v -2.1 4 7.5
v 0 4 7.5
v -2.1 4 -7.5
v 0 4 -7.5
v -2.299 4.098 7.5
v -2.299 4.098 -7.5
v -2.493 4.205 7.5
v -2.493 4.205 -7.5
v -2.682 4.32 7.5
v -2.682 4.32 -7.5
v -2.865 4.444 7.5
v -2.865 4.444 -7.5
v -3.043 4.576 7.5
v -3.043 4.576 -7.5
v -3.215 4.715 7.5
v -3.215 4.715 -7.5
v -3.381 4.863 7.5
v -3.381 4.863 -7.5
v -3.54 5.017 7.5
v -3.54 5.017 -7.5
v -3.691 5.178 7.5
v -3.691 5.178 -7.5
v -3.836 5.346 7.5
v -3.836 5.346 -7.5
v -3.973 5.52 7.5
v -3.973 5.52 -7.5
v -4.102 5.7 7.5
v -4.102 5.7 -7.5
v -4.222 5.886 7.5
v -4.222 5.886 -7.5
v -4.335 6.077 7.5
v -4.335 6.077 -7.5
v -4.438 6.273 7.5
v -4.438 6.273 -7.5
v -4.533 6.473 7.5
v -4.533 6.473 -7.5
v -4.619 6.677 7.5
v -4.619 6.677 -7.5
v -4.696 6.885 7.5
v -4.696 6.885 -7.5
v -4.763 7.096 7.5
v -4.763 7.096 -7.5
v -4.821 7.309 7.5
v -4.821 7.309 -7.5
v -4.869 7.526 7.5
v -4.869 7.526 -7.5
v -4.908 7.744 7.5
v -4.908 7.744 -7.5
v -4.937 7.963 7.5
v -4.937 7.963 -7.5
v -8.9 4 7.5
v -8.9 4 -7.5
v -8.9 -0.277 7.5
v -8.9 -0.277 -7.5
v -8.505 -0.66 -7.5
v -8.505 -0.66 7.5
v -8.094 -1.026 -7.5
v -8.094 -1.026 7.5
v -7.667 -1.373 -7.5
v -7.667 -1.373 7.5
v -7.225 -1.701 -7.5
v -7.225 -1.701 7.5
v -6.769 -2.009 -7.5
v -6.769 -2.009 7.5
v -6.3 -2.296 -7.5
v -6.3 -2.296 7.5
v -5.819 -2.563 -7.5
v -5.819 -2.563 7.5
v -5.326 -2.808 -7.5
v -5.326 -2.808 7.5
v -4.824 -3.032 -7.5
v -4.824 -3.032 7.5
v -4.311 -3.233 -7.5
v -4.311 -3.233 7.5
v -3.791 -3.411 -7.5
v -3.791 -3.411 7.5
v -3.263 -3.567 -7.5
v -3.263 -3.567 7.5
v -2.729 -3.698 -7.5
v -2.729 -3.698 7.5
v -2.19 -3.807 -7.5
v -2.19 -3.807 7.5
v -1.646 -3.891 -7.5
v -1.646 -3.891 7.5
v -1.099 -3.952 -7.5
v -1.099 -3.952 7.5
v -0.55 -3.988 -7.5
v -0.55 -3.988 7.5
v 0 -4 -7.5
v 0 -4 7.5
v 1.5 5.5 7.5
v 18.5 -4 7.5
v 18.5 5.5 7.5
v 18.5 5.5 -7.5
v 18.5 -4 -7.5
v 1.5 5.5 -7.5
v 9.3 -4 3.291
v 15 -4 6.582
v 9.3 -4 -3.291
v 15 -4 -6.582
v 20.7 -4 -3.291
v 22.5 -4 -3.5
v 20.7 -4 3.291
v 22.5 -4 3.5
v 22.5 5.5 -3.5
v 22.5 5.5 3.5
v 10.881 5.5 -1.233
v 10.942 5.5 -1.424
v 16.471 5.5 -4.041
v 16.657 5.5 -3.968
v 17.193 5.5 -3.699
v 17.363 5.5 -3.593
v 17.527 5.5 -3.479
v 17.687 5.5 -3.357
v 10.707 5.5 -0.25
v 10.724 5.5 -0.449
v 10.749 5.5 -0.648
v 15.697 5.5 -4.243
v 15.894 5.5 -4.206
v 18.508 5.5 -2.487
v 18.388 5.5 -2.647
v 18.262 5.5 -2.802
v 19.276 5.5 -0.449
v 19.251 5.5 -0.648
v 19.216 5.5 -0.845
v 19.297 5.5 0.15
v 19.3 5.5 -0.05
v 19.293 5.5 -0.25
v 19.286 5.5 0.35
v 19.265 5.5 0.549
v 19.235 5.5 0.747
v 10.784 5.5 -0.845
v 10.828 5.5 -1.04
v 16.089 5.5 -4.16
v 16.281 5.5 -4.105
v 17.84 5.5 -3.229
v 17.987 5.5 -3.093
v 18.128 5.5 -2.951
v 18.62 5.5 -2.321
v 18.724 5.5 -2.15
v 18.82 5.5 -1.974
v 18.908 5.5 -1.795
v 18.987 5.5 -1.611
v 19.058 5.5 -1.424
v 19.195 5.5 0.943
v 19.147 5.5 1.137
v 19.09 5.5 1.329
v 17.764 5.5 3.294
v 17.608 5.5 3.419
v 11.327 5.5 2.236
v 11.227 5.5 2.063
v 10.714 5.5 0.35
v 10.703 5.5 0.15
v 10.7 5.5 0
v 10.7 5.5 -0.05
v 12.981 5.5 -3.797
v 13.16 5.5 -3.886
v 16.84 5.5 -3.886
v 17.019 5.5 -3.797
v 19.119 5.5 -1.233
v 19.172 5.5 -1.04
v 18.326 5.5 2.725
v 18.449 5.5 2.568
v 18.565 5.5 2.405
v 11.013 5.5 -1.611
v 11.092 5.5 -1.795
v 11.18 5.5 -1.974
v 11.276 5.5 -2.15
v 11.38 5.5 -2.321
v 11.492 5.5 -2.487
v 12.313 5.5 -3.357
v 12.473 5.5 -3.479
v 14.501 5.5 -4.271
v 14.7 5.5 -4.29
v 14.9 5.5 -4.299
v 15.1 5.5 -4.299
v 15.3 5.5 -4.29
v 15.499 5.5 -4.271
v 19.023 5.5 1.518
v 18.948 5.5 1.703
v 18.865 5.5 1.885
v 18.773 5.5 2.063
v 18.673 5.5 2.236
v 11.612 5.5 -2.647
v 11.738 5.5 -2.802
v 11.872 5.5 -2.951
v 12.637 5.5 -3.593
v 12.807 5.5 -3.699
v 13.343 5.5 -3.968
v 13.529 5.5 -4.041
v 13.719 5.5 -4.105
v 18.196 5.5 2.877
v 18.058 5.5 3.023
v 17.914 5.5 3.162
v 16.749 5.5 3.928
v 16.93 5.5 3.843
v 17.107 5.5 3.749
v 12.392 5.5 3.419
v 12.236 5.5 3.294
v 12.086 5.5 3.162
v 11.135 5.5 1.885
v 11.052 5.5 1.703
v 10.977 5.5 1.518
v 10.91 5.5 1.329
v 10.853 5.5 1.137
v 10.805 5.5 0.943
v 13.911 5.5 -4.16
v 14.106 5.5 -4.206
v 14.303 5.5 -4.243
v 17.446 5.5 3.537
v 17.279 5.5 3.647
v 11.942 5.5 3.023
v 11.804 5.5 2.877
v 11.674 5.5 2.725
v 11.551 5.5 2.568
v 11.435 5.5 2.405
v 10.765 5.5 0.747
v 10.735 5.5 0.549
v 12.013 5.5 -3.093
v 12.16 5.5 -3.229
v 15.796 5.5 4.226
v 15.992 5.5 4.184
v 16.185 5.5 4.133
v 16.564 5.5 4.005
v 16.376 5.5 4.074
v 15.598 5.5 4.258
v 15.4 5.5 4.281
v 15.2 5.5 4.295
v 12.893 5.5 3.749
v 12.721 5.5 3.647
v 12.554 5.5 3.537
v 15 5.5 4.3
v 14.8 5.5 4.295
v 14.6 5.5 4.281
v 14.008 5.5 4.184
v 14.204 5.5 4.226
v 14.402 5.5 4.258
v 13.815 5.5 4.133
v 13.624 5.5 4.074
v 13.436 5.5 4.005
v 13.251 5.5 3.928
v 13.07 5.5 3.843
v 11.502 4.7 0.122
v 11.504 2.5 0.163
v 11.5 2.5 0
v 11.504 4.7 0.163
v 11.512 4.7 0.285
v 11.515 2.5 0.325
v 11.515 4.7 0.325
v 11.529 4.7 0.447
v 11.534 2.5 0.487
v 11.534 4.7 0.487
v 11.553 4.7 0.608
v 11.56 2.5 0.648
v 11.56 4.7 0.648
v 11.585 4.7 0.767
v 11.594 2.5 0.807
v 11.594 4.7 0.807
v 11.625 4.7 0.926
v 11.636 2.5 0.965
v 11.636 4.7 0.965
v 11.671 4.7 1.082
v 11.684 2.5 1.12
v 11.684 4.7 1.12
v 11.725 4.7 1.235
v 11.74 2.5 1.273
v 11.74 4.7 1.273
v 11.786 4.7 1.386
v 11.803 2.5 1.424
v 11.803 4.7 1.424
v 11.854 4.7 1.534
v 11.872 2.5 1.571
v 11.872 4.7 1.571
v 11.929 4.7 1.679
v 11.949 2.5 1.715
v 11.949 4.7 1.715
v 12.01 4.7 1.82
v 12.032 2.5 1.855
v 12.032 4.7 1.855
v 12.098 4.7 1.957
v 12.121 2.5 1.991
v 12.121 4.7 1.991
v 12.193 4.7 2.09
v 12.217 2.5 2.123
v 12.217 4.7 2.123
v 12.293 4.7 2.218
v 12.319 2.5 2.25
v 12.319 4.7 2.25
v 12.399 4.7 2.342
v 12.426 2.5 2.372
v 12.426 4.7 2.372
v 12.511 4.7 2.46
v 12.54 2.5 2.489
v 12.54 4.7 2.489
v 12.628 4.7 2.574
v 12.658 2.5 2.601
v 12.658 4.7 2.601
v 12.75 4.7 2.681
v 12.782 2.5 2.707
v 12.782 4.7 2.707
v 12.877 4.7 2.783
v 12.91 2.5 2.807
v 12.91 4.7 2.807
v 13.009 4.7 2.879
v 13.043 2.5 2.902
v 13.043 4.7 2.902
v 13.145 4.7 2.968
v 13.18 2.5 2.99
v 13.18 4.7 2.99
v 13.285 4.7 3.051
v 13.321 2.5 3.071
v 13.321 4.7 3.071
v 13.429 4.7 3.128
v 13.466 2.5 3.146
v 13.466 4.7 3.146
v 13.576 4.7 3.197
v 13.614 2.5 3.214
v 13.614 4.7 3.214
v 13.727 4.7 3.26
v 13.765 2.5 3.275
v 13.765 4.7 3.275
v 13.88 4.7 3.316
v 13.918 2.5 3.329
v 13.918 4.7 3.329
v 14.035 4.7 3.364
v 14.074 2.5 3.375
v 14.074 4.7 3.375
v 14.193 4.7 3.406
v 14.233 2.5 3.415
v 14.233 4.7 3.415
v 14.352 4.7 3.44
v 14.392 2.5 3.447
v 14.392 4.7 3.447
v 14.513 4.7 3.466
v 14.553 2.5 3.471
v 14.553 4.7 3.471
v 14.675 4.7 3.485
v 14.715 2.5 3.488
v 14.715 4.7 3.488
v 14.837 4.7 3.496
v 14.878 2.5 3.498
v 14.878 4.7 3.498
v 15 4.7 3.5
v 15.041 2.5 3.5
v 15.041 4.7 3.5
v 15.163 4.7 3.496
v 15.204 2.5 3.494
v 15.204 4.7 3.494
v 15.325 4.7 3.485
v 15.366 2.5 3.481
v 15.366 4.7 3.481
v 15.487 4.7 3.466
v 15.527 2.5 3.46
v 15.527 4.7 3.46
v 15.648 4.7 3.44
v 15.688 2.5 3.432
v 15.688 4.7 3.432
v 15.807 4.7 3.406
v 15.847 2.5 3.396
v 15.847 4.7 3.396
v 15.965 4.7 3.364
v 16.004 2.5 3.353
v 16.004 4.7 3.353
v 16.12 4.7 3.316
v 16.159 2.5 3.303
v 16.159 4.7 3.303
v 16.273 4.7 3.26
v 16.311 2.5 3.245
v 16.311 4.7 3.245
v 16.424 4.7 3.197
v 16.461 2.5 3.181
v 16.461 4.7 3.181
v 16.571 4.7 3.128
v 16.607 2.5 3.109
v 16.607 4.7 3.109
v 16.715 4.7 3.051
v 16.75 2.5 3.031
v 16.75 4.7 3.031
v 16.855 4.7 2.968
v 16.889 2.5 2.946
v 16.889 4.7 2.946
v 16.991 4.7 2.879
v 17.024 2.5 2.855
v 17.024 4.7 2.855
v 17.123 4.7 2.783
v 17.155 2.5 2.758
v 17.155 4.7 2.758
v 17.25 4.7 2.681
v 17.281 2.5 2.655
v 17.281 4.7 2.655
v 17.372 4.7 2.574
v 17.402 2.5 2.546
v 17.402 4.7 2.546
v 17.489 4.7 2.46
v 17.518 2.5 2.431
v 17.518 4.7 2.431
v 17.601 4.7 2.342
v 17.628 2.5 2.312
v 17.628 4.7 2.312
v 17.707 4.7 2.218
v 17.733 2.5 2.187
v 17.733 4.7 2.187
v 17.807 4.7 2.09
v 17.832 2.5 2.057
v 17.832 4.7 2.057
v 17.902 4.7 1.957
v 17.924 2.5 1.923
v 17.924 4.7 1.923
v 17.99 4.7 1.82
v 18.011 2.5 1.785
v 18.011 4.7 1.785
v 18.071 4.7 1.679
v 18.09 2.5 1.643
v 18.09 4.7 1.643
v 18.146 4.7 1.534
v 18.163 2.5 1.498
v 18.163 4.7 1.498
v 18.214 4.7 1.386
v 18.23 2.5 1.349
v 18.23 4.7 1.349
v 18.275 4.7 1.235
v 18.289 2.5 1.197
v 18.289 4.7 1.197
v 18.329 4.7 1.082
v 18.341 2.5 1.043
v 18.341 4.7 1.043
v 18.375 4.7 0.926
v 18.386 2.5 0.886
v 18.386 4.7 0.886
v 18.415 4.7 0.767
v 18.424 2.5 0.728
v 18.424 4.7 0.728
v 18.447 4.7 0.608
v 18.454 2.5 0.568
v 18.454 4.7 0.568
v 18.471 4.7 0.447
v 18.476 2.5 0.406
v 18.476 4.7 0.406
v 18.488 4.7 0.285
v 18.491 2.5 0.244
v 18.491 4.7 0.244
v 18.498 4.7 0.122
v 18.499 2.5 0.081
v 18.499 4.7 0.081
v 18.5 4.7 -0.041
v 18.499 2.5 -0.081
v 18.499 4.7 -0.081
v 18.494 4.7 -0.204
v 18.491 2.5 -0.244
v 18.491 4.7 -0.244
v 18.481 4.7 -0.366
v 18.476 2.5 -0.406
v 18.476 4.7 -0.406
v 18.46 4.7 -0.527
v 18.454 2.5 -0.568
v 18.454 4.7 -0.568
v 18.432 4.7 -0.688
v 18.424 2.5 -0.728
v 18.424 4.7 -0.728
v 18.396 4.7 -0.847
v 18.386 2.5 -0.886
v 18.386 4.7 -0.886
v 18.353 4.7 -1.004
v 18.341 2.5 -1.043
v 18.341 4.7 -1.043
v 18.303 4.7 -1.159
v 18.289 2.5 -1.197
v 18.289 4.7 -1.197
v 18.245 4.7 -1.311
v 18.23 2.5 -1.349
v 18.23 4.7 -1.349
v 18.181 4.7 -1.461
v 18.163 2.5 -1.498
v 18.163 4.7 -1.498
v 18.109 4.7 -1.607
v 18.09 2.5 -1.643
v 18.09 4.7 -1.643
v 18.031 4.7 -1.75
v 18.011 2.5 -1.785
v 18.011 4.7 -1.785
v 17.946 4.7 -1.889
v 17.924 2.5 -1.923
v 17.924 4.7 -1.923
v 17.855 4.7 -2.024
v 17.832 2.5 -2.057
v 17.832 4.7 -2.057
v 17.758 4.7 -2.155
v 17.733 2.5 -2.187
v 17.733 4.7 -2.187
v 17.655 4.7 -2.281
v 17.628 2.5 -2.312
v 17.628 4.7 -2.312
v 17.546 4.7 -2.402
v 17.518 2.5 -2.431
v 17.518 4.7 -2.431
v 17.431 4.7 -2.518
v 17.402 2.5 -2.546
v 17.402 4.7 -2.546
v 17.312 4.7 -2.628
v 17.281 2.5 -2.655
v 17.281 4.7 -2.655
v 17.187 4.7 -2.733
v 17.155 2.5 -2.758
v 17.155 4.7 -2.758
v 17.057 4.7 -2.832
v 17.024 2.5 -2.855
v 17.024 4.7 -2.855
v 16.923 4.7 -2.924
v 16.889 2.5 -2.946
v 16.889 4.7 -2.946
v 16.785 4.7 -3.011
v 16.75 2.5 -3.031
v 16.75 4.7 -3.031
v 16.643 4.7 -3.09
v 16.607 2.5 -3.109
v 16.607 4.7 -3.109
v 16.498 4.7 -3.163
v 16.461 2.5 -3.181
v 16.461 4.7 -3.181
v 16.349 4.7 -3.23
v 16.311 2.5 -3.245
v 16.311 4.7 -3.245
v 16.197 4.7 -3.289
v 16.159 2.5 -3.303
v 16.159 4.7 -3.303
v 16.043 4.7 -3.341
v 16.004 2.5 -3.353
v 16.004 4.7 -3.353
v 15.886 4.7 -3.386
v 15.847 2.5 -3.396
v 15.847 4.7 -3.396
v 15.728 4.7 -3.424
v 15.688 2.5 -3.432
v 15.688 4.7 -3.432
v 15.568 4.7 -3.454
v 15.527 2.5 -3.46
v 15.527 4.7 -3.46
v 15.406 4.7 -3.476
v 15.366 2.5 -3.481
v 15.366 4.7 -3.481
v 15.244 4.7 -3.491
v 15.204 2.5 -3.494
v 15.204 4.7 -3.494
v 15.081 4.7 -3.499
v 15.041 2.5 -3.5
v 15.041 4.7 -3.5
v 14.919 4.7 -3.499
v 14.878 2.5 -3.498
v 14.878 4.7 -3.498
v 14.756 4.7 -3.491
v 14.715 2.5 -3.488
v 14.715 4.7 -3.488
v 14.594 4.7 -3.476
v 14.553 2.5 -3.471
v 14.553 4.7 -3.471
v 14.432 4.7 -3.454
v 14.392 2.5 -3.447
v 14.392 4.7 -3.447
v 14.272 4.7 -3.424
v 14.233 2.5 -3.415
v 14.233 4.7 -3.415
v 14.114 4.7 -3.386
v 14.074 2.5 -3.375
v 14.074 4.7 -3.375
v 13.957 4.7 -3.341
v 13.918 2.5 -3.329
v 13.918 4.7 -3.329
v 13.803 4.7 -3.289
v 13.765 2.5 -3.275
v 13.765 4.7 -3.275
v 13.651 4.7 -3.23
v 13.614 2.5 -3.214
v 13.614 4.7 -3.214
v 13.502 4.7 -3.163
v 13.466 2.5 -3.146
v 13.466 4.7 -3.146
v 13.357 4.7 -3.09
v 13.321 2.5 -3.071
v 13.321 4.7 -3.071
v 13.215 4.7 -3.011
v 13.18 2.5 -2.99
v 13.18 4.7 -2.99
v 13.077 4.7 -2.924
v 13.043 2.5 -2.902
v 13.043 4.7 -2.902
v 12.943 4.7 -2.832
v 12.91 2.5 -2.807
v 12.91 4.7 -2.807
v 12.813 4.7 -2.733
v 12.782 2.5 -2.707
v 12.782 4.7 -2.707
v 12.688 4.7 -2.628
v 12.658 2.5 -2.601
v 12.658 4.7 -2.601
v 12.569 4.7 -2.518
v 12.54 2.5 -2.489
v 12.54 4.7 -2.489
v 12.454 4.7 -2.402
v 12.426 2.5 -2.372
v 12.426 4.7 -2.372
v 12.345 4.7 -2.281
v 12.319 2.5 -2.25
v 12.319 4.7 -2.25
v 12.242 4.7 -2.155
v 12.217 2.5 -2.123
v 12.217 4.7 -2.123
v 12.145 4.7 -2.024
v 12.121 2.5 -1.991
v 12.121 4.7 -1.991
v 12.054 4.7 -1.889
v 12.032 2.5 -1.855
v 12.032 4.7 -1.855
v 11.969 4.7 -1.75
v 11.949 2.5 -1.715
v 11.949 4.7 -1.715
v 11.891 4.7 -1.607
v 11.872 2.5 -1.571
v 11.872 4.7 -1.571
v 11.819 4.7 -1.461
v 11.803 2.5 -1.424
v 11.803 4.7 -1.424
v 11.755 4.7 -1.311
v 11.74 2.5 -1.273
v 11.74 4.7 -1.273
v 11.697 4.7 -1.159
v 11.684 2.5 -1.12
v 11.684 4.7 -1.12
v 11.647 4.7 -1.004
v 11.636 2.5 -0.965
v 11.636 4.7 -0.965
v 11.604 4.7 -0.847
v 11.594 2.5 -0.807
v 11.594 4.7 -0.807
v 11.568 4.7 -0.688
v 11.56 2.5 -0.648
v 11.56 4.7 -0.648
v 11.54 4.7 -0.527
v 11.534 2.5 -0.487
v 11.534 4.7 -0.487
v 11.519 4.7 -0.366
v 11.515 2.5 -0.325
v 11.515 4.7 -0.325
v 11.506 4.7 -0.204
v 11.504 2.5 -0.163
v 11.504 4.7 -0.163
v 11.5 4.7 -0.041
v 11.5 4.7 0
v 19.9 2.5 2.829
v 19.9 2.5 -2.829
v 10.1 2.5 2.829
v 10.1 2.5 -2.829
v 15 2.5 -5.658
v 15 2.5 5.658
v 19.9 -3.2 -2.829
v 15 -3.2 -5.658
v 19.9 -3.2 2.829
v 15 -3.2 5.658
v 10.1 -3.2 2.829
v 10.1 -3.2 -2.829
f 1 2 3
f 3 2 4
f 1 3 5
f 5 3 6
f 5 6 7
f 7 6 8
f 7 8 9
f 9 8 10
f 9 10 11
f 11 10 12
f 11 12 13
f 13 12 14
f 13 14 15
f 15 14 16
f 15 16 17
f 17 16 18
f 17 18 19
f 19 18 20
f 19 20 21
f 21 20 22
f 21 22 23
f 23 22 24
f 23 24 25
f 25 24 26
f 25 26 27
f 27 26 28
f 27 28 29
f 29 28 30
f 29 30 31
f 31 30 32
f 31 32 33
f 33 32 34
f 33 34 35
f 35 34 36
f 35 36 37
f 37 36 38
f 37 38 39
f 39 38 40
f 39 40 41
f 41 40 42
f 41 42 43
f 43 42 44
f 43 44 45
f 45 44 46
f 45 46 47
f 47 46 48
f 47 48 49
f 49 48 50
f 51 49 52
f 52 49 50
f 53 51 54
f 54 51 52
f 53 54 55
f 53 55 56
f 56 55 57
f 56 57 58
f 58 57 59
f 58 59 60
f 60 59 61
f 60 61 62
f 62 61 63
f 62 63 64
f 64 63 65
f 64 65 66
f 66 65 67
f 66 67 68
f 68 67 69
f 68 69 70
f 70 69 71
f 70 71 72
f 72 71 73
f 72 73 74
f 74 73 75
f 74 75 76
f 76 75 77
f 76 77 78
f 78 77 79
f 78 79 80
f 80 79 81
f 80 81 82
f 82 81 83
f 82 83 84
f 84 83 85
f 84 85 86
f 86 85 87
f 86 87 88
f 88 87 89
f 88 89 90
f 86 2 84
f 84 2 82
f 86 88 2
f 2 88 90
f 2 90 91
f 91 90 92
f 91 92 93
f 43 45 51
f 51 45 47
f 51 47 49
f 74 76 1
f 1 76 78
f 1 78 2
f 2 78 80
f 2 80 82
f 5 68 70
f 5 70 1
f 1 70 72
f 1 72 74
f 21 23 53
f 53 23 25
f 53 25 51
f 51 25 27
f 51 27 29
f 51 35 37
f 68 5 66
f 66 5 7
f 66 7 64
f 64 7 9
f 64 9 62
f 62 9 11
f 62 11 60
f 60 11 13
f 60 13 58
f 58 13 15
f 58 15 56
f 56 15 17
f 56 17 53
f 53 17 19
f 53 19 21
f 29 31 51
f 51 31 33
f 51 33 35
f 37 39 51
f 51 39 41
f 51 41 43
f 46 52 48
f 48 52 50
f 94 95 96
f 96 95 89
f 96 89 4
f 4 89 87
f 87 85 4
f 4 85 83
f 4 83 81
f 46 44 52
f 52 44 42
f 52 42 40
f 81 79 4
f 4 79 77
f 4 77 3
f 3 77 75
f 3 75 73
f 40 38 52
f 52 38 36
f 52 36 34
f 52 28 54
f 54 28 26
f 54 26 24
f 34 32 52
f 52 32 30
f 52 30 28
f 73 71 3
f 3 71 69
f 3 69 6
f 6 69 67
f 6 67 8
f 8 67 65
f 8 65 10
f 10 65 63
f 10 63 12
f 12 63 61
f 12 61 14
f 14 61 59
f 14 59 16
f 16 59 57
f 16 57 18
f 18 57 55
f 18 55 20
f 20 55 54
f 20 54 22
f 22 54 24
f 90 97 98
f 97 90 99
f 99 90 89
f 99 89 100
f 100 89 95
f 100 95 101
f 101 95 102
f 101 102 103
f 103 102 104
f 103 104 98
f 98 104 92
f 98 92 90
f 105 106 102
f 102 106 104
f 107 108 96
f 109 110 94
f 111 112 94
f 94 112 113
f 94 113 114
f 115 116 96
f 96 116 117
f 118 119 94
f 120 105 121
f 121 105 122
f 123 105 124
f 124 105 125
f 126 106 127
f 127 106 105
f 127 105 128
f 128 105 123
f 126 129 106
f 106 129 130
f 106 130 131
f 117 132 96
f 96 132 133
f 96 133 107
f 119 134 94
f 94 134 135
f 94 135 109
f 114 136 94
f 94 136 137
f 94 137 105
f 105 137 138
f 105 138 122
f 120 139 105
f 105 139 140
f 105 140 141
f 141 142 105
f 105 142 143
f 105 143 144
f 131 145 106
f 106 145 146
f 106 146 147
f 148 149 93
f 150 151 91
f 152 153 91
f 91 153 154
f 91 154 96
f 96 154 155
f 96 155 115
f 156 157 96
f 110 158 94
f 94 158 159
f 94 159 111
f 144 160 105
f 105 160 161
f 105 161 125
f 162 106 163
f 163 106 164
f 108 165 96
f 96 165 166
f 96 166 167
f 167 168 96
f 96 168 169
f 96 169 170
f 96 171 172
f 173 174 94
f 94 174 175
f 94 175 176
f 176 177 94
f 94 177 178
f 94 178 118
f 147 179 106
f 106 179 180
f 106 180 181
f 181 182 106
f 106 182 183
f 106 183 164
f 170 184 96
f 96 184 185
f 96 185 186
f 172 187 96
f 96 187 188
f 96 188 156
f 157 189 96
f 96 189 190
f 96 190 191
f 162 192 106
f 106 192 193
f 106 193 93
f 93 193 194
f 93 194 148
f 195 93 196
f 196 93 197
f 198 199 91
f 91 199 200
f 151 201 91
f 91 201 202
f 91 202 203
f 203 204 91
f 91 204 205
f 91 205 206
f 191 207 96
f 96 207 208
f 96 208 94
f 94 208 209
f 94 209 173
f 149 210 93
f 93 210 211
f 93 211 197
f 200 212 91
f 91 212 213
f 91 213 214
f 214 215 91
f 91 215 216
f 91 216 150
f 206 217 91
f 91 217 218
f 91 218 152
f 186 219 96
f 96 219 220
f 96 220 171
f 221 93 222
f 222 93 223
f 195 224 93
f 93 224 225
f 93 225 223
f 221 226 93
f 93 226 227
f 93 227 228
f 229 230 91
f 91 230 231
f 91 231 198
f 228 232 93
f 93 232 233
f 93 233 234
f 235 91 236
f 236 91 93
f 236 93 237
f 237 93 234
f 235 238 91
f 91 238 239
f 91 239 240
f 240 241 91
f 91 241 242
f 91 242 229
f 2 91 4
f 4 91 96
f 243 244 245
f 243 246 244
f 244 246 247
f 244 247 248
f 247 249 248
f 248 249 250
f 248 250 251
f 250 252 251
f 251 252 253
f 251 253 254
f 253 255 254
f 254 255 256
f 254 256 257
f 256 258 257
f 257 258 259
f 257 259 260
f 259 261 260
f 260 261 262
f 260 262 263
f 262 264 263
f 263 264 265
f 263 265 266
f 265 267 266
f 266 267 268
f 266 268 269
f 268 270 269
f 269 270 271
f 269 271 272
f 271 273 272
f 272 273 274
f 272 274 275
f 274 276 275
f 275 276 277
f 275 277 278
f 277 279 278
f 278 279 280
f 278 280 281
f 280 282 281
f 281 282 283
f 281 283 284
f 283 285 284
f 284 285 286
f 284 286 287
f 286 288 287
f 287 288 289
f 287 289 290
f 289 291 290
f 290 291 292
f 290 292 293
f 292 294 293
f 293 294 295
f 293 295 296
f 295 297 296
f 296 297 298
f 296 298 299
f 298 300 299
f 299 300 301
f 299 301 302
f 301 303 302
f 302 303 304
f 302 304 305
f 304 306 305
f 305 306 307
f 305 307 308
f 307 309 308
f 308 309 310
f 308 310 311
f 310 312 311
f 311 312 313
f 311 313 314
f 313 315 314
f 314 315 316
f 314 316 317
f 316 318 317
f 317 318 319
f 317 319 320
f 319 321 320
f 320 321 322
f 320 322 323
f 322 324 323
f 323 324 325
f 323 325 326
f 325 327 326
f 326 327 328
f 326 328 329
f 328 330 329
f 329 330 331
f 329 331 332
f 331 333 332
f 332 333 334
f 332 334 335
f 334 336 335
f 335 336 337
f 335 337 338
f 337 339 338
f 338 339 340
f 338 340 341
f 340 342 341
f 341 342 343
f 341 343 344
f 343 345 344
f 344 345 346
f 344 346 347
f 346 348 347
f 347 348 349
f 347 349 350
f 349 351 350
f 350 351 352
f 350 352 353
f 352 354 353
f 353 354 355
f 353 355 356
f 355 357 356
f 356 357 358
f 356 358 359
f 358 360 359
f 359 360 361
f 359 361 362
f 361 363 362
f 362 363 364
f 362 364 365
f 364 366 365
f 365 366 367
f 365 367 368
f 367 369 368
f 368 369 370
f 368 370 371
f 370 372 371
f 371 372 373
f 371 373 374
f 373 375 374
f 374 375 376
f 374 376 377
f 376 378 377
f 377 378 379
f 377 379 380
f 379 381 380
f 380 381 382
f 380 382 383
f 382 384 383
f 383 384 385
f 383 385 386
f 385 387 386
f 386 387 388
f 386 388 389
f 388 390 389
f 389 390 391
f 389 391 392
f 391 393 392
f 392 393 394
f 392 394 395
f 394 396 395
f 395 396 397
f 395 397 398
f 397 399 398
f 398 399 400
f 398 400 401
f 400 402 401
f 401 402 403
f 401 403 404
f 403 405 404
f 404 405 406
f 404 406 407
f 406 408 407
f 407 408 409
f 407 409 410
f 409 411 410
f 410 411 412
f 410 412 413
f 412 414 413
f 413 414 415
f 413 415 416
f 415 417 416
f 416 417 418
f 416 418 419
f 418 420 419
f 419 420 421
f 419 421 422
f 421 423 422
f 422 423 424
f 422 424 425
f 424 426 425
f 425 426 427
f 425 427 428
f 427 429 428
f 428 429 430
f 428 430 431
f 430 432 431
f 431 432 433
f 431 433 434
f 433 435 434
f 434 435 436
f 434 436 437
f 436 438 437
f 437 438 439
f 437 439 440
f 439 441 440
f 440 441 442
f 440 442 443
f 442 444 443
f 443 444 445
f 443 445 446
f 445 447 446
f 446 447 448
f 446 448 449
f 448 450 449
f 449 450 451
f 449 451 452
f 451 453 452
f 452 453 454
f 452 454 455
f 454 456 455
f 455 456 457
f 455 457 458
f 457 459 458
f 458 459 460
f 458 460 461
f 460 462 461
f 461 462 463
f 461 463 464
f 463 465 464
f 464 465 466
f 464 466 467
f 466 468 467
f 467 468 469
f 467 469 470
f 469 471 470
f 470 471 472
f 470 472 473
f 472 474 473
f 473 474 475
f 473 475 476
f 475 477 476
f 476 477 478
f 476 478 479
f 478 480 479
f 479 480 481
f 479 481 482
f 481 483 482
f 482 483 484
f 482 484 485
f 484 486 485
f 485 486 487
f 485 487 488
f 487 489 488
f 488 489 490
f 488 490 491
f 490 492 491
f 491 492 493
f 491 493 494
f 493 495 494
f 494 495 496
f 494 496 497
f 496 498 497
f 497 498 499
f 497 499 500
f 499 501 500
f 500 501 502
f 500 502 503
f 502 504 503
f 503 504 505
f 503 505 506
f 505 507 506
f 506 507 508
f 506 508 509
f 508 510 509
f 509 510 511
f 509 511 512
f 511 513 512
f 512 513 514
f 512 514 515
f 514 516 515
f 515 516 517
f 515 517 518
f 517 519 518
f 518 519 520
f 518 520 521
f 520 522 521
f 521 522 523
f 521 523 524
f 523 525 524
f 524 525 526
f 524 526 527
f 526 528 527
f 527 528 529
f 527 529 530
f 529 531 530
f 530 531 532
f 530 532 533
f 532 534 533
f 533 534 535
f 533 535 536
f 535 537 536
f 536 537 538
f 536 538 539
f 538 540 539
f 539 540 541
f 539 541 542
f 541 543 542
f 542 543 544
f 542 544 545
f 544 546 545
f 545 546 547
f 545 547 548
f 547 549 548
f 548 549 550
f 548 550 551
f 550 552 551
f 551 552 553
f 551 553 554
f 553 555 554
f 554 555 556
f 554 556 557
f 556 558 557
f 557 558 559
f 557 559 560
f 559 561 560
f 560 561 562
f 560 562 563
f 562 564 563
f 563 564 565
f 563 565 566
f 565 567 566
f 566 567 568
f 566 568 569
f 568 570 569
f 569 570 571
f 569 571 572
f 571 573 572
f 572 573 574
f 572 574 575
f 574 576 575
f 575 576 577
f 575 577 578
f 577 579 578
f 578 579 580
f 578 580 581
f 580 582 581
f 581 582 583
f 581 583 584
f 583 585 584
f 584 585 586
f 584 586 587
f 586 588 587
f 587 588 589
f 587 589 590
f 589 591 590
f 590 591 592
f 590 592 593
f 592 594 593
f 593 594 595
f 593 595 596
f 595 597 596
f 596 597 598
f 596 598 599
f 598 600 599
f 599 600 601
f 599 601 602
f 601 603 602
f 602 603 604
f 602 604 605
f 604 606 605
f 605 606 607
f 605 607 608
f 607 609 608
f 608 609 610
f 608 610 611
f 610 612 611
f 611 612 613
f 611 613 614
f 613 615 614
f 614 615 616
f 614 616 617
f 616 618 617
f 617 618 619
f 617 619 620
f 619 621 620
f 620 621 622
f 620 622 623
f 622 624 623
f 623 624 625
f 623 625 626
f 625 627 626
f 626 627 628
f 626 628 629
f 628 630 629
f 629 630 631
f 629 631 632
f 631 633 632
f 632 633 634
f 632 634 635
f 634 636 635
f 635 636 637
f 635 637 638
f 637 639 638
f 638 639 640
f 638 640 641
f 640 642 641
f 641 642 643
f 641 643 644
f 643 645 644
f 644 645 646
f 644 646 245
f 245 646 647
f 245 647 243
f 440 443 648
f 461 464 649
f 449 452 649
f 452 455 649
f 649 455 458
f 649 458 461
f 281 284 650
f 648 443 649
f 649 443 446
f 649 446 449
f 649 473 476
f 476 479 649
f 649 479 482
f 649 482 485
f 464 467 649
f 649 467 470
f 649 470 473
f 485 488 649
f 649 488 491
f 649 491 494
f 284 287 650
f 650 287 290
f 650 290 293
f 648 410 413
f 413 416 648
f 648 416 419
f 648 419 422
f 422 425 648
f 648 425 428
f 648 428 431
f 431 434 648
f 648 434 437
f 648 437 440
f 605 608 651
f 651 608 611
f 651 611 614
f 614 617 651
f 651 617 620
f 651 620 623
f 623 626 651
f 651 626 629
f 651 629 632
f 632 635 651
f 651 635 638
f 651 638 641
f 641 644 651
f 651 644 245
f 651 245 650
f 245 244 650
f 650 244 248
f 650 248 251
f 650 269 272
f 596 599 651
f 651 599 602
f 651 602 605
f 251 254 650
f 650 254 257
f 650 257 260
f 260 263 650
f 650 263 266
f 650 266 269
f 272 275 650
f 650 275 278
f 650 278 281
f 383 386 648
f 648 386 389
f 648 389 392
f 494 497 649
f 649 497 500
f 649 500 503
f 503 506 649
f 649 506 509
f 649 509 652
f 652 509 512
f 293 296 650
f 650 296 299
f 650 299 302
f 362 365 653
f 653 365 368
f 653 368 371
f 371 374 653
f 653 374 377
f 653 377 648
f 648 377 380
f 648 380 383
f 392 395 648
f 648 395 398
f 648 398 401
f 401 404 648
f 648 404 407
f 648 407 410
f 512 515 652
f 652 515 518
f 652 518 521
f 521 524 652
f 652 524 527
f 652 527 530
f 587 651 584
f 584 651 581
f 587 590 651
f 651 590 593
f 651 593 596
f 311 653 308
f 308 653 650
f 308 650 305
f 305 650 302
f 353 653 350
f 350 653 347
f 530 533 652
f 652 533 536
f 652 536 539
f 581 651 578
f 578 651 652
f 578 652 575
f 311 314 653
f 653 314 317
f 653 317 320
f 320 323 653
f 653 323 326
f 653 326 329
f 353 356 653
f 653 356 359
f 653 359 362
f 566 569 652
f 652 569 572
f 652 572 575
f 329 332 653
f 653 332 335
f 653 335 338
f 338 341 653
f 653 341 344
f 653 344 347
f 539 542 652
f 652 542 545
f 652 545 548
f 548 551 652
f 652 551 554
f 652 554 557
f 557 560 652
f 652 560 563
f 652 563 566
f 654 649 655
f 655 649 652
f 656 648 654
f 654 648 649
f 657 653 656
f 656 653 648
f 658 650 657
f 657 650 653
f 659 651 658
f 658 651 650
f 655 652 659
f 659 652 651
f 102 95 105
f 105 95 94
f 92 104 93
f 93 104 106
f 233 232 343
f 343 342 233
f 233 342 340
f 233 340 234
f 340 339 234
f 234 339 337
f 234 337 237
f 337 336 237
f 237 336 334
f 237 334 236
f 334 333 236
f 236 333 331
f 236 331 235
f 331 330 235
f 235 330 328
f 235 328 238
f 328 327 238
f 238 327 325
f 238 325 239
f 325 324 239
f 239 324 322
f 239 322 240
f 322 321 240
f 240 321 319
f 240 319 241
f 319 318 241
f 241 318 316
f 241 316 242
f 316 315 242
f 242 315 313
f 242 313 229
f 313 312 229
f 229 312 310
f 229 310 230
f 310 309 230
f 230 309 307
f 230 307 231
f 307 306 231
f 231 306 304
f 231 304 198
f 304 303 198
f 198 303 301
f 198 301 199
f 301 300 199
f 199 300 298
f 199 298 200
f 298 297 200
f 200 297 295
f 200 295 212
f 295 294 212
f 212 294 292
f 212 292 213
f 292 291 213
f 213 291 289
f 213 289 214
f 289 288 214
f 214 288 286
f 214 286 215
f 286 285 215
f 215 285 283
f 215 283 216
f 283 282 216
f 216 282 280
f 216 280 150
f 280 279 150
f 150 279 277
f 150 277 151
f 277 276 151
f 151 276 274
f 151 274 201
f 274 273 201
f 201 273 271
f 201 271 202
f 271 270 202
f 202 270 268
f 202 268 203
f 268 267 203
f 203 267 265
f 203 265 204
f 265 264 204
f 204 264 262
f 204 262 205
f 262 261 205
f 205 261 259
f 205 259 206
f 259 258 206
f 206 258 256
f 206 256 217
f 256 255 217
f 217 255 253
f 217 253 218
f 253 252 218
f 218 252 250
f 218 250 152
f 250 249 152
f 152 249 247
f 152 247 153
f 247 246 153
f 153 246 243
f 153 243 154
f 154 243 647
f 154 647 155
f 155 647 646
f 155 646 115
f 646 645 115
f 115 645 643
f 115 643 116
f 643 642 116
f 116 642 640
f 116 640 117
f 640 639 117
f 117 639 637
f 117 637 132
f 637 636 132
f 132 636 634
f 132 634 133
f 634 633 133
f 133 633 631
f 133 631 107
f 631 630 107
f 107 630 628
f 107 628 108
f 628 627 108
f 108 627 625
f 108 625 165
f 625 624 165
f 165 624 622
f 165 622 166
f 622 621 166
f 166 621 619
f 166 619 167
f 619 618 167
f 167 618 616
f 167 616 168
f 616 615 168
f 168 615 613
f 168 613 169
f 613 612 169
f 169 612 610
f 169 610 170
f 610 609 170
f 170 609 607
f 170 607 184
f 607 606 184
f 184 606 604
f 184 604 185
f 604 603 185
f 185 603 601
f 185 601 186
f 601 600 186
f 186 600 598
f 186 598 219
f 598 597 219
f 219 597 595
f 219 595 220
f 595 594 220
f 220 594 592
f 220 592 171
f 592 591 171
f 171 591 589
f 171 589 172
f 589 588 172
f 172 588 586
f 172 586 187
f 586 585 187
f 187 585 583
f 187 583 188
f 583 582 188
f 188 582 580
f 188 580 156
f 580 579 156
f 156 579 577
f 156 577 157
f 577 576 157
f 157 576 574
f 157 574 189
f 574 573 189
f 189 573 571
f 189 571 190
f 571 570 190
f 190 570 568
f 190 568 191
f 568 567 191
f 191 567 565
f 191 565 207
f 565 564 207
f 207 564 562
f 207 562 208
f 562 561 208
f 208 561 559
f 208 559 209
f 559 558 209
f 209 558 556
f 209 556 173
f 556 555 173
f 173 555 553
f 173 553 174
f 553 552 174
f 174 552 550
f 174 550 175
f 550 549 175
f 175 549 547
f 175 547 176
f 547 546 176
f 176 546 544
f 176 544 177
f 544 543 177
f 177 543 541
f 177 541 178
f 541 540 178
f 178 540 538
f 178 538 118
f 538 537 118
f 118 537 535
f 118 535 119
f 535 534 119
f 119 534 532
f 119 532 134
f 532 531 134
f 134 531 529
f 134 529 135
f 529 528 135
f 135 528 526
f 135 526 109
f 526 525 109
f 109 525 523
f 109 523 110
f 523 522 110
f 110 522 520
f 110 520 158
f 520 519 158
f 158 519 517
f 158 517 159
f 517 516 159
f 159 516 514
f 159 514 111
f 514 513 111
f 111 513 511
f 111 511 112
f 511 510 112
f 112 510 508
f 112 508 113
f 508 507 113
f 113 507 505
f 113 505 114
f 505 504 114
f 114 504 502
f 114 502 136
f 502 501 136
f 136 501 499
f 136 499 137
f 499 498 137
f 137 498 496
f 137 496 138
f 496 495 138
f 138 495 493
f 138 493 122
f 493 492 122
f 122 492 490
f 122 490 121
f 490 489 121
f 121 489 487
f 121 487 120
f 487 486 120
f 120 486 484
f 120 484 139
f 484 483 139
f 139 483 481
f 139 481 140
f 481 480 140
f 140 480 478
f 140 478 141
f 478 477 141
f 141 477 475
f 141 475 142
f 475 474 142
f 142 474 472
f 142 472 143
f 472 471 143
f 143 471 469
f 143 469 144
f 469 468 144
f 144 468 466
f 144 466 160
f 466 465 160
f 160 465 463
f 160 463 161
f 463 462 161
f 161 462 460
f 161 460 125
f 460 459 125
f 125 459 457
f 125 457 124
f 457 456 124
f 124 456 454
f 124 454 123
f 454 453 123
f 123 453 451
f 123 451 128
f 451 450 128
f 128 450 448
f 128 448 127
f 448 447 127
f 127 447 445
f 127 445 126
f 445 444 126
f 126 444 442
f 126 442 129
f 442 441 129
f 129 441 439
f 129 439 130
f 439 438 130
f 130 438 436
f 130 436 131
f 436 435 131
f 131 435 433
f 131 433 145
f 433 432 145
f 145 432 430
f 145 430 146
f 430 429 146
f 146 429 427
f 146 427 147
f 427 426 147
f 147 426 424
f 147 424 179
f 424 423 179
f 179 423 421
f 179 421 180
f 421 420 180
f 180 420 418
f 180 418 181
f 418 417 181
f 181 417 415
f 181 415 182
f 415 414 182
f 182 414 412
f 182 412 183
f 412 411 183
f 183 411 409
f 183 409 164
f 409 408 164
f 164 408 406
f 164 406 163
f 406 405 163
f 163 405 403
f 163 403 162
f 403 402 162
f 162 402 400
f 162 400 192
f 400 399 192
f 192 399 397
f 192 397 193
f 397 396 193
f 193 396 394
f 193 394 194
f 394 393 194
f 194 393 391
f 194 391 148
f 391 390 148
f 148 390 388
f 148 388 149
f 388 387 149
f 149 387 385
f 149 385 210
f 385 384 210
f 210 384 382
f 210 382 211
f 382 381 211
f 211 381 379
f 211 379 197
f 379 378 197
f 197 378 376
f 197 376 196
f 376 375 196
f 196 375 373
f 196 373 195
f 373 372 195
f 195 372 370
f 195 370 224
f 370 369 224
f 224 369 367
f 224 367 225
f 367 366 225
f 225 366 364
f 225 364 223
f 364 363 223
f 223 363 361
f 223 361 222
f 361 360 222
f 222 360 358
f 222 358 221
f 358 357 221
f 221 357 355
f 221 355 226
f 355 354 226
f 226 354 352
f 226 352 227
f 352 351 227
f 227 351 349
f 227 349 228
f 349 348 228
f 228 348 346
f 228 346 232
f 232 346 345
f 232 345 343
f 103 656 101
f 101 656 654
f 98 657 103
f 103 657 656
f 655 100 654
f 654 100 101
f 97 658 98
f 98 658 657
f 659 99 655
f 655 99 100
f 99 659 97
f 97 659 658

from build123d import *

# Parameters (mm, degrees)
SALIENTE_EXTRUIR1_DEPTH = 7.5
SALIENTE_EXTRUIR2_DEPTH = 15
CROQUIS7_R              = 3.5
CORTAR_EXTRUIR4_DEPTH   = 10.5
CORTAR_EXTRUIR5_START   = -3
CORTAR_EXTRUIR5_DEPTH   = 10
CHAFL_N4_SIZE           = 4
CHAFL_N5_SIZE           = 0.8


with BuildPart() as part:
    # Croquis1 → Saliente-Extruir1 (new body, symmetric)
    with BuildSketch(Plane.XY):
        with BuildLine():
            Line((-8.9, 4), (-4.936786437, 7.963213563))
            ThreePointArc((-4.936786437, 7.963213563), (-4.038051049, 5.609646436), (-2.1, 4))
            Line((-2.1, 4), (0, 4))
            Line((0, 4), (0, -4))
            ThreePointArc((0, -4), (-4.823611651, -3.031815583), (-8.9, -0.277243303))
            Line((-8.9, -0.277243303), (-8.9, 4))
        make_face()
    extrude(amount=SALIENTE_EXTRUIR1_DEPTH, both=True)

    # Croquis6 → Saliente-Extruir2 (add, through all)
    with BuildSketch(Plane(origin=(0, 0, -7.5), x_dir=(-1, 0, 0), z_dir=(0, 0, -1))):
        Polygon((0, 4), (-1.5, 5.5), (-22.5, 5.5), (-22.5, -4), (0, -4), align=None)
    extrude(amount=-SALIENTE_EXTRUIR2_DEPTH)

    # Croquis7 → Cortar-Extruir4 (cut, through all)
    with BuildSketch(Plane(origin=(0, 5.5, 0), x_dir=(1, 0, 0), z_dir=(0, 1, 0))):
        with Locations((15, 0)):
            Circle(CROQUIS7_R)
    extrude(amount=-CORTAR_EXTRUIR4_DEPTH, mode=Mode.SUBTRACT)

    # Croquis8 → Cortar-Extruir5 (cut)
    with BuildSketch(Plane(origin=(0, 5.5, 0), x_dir=(1, 0, 0), z_dir=(0, 1, 0)).offset(CORTAR_EXTRUIR5_START)):
        Polygon((15, 5.658032638), (10.1, 2.829016319), (10.1, -2.829016319), (15, -5.658032638), (19.9, -2.829016319), (19.9, 2.829016319), align=None)
    extrude(amount=-CORTAR_EXTRUIR5_DEPTH, mode=Mode.SUBTRACT)

    # Chaflán4
    chafl_n4_edges = [part.edges().sort_by_distance(p)[0] for p in [
        (22.5, 0.75, 7.5),
        (22.5, 0.75, -7.5),
    ]]
    chamfer(chafl_n4_edges, length=CHAFL_N4_SIZE)

    # Chaflán5
    chafl_n5_edges = [part.edges().sort_by_distance(p)[0] for p in [
        (11.5, 5.5, 0),
        (12.55, -4, -4.243524479),
        (10.1, -4, 0),
        (12.55, -4, 4.243524479),
        (17.45, -4, 4.243524479),
        (19.9, -4, 0),
        (17.45, -4, -4.243524479),
    ]]
    chamfer(chafl_n5_edges, length=CHAFL_N5_SIZE)


solid = part.part
